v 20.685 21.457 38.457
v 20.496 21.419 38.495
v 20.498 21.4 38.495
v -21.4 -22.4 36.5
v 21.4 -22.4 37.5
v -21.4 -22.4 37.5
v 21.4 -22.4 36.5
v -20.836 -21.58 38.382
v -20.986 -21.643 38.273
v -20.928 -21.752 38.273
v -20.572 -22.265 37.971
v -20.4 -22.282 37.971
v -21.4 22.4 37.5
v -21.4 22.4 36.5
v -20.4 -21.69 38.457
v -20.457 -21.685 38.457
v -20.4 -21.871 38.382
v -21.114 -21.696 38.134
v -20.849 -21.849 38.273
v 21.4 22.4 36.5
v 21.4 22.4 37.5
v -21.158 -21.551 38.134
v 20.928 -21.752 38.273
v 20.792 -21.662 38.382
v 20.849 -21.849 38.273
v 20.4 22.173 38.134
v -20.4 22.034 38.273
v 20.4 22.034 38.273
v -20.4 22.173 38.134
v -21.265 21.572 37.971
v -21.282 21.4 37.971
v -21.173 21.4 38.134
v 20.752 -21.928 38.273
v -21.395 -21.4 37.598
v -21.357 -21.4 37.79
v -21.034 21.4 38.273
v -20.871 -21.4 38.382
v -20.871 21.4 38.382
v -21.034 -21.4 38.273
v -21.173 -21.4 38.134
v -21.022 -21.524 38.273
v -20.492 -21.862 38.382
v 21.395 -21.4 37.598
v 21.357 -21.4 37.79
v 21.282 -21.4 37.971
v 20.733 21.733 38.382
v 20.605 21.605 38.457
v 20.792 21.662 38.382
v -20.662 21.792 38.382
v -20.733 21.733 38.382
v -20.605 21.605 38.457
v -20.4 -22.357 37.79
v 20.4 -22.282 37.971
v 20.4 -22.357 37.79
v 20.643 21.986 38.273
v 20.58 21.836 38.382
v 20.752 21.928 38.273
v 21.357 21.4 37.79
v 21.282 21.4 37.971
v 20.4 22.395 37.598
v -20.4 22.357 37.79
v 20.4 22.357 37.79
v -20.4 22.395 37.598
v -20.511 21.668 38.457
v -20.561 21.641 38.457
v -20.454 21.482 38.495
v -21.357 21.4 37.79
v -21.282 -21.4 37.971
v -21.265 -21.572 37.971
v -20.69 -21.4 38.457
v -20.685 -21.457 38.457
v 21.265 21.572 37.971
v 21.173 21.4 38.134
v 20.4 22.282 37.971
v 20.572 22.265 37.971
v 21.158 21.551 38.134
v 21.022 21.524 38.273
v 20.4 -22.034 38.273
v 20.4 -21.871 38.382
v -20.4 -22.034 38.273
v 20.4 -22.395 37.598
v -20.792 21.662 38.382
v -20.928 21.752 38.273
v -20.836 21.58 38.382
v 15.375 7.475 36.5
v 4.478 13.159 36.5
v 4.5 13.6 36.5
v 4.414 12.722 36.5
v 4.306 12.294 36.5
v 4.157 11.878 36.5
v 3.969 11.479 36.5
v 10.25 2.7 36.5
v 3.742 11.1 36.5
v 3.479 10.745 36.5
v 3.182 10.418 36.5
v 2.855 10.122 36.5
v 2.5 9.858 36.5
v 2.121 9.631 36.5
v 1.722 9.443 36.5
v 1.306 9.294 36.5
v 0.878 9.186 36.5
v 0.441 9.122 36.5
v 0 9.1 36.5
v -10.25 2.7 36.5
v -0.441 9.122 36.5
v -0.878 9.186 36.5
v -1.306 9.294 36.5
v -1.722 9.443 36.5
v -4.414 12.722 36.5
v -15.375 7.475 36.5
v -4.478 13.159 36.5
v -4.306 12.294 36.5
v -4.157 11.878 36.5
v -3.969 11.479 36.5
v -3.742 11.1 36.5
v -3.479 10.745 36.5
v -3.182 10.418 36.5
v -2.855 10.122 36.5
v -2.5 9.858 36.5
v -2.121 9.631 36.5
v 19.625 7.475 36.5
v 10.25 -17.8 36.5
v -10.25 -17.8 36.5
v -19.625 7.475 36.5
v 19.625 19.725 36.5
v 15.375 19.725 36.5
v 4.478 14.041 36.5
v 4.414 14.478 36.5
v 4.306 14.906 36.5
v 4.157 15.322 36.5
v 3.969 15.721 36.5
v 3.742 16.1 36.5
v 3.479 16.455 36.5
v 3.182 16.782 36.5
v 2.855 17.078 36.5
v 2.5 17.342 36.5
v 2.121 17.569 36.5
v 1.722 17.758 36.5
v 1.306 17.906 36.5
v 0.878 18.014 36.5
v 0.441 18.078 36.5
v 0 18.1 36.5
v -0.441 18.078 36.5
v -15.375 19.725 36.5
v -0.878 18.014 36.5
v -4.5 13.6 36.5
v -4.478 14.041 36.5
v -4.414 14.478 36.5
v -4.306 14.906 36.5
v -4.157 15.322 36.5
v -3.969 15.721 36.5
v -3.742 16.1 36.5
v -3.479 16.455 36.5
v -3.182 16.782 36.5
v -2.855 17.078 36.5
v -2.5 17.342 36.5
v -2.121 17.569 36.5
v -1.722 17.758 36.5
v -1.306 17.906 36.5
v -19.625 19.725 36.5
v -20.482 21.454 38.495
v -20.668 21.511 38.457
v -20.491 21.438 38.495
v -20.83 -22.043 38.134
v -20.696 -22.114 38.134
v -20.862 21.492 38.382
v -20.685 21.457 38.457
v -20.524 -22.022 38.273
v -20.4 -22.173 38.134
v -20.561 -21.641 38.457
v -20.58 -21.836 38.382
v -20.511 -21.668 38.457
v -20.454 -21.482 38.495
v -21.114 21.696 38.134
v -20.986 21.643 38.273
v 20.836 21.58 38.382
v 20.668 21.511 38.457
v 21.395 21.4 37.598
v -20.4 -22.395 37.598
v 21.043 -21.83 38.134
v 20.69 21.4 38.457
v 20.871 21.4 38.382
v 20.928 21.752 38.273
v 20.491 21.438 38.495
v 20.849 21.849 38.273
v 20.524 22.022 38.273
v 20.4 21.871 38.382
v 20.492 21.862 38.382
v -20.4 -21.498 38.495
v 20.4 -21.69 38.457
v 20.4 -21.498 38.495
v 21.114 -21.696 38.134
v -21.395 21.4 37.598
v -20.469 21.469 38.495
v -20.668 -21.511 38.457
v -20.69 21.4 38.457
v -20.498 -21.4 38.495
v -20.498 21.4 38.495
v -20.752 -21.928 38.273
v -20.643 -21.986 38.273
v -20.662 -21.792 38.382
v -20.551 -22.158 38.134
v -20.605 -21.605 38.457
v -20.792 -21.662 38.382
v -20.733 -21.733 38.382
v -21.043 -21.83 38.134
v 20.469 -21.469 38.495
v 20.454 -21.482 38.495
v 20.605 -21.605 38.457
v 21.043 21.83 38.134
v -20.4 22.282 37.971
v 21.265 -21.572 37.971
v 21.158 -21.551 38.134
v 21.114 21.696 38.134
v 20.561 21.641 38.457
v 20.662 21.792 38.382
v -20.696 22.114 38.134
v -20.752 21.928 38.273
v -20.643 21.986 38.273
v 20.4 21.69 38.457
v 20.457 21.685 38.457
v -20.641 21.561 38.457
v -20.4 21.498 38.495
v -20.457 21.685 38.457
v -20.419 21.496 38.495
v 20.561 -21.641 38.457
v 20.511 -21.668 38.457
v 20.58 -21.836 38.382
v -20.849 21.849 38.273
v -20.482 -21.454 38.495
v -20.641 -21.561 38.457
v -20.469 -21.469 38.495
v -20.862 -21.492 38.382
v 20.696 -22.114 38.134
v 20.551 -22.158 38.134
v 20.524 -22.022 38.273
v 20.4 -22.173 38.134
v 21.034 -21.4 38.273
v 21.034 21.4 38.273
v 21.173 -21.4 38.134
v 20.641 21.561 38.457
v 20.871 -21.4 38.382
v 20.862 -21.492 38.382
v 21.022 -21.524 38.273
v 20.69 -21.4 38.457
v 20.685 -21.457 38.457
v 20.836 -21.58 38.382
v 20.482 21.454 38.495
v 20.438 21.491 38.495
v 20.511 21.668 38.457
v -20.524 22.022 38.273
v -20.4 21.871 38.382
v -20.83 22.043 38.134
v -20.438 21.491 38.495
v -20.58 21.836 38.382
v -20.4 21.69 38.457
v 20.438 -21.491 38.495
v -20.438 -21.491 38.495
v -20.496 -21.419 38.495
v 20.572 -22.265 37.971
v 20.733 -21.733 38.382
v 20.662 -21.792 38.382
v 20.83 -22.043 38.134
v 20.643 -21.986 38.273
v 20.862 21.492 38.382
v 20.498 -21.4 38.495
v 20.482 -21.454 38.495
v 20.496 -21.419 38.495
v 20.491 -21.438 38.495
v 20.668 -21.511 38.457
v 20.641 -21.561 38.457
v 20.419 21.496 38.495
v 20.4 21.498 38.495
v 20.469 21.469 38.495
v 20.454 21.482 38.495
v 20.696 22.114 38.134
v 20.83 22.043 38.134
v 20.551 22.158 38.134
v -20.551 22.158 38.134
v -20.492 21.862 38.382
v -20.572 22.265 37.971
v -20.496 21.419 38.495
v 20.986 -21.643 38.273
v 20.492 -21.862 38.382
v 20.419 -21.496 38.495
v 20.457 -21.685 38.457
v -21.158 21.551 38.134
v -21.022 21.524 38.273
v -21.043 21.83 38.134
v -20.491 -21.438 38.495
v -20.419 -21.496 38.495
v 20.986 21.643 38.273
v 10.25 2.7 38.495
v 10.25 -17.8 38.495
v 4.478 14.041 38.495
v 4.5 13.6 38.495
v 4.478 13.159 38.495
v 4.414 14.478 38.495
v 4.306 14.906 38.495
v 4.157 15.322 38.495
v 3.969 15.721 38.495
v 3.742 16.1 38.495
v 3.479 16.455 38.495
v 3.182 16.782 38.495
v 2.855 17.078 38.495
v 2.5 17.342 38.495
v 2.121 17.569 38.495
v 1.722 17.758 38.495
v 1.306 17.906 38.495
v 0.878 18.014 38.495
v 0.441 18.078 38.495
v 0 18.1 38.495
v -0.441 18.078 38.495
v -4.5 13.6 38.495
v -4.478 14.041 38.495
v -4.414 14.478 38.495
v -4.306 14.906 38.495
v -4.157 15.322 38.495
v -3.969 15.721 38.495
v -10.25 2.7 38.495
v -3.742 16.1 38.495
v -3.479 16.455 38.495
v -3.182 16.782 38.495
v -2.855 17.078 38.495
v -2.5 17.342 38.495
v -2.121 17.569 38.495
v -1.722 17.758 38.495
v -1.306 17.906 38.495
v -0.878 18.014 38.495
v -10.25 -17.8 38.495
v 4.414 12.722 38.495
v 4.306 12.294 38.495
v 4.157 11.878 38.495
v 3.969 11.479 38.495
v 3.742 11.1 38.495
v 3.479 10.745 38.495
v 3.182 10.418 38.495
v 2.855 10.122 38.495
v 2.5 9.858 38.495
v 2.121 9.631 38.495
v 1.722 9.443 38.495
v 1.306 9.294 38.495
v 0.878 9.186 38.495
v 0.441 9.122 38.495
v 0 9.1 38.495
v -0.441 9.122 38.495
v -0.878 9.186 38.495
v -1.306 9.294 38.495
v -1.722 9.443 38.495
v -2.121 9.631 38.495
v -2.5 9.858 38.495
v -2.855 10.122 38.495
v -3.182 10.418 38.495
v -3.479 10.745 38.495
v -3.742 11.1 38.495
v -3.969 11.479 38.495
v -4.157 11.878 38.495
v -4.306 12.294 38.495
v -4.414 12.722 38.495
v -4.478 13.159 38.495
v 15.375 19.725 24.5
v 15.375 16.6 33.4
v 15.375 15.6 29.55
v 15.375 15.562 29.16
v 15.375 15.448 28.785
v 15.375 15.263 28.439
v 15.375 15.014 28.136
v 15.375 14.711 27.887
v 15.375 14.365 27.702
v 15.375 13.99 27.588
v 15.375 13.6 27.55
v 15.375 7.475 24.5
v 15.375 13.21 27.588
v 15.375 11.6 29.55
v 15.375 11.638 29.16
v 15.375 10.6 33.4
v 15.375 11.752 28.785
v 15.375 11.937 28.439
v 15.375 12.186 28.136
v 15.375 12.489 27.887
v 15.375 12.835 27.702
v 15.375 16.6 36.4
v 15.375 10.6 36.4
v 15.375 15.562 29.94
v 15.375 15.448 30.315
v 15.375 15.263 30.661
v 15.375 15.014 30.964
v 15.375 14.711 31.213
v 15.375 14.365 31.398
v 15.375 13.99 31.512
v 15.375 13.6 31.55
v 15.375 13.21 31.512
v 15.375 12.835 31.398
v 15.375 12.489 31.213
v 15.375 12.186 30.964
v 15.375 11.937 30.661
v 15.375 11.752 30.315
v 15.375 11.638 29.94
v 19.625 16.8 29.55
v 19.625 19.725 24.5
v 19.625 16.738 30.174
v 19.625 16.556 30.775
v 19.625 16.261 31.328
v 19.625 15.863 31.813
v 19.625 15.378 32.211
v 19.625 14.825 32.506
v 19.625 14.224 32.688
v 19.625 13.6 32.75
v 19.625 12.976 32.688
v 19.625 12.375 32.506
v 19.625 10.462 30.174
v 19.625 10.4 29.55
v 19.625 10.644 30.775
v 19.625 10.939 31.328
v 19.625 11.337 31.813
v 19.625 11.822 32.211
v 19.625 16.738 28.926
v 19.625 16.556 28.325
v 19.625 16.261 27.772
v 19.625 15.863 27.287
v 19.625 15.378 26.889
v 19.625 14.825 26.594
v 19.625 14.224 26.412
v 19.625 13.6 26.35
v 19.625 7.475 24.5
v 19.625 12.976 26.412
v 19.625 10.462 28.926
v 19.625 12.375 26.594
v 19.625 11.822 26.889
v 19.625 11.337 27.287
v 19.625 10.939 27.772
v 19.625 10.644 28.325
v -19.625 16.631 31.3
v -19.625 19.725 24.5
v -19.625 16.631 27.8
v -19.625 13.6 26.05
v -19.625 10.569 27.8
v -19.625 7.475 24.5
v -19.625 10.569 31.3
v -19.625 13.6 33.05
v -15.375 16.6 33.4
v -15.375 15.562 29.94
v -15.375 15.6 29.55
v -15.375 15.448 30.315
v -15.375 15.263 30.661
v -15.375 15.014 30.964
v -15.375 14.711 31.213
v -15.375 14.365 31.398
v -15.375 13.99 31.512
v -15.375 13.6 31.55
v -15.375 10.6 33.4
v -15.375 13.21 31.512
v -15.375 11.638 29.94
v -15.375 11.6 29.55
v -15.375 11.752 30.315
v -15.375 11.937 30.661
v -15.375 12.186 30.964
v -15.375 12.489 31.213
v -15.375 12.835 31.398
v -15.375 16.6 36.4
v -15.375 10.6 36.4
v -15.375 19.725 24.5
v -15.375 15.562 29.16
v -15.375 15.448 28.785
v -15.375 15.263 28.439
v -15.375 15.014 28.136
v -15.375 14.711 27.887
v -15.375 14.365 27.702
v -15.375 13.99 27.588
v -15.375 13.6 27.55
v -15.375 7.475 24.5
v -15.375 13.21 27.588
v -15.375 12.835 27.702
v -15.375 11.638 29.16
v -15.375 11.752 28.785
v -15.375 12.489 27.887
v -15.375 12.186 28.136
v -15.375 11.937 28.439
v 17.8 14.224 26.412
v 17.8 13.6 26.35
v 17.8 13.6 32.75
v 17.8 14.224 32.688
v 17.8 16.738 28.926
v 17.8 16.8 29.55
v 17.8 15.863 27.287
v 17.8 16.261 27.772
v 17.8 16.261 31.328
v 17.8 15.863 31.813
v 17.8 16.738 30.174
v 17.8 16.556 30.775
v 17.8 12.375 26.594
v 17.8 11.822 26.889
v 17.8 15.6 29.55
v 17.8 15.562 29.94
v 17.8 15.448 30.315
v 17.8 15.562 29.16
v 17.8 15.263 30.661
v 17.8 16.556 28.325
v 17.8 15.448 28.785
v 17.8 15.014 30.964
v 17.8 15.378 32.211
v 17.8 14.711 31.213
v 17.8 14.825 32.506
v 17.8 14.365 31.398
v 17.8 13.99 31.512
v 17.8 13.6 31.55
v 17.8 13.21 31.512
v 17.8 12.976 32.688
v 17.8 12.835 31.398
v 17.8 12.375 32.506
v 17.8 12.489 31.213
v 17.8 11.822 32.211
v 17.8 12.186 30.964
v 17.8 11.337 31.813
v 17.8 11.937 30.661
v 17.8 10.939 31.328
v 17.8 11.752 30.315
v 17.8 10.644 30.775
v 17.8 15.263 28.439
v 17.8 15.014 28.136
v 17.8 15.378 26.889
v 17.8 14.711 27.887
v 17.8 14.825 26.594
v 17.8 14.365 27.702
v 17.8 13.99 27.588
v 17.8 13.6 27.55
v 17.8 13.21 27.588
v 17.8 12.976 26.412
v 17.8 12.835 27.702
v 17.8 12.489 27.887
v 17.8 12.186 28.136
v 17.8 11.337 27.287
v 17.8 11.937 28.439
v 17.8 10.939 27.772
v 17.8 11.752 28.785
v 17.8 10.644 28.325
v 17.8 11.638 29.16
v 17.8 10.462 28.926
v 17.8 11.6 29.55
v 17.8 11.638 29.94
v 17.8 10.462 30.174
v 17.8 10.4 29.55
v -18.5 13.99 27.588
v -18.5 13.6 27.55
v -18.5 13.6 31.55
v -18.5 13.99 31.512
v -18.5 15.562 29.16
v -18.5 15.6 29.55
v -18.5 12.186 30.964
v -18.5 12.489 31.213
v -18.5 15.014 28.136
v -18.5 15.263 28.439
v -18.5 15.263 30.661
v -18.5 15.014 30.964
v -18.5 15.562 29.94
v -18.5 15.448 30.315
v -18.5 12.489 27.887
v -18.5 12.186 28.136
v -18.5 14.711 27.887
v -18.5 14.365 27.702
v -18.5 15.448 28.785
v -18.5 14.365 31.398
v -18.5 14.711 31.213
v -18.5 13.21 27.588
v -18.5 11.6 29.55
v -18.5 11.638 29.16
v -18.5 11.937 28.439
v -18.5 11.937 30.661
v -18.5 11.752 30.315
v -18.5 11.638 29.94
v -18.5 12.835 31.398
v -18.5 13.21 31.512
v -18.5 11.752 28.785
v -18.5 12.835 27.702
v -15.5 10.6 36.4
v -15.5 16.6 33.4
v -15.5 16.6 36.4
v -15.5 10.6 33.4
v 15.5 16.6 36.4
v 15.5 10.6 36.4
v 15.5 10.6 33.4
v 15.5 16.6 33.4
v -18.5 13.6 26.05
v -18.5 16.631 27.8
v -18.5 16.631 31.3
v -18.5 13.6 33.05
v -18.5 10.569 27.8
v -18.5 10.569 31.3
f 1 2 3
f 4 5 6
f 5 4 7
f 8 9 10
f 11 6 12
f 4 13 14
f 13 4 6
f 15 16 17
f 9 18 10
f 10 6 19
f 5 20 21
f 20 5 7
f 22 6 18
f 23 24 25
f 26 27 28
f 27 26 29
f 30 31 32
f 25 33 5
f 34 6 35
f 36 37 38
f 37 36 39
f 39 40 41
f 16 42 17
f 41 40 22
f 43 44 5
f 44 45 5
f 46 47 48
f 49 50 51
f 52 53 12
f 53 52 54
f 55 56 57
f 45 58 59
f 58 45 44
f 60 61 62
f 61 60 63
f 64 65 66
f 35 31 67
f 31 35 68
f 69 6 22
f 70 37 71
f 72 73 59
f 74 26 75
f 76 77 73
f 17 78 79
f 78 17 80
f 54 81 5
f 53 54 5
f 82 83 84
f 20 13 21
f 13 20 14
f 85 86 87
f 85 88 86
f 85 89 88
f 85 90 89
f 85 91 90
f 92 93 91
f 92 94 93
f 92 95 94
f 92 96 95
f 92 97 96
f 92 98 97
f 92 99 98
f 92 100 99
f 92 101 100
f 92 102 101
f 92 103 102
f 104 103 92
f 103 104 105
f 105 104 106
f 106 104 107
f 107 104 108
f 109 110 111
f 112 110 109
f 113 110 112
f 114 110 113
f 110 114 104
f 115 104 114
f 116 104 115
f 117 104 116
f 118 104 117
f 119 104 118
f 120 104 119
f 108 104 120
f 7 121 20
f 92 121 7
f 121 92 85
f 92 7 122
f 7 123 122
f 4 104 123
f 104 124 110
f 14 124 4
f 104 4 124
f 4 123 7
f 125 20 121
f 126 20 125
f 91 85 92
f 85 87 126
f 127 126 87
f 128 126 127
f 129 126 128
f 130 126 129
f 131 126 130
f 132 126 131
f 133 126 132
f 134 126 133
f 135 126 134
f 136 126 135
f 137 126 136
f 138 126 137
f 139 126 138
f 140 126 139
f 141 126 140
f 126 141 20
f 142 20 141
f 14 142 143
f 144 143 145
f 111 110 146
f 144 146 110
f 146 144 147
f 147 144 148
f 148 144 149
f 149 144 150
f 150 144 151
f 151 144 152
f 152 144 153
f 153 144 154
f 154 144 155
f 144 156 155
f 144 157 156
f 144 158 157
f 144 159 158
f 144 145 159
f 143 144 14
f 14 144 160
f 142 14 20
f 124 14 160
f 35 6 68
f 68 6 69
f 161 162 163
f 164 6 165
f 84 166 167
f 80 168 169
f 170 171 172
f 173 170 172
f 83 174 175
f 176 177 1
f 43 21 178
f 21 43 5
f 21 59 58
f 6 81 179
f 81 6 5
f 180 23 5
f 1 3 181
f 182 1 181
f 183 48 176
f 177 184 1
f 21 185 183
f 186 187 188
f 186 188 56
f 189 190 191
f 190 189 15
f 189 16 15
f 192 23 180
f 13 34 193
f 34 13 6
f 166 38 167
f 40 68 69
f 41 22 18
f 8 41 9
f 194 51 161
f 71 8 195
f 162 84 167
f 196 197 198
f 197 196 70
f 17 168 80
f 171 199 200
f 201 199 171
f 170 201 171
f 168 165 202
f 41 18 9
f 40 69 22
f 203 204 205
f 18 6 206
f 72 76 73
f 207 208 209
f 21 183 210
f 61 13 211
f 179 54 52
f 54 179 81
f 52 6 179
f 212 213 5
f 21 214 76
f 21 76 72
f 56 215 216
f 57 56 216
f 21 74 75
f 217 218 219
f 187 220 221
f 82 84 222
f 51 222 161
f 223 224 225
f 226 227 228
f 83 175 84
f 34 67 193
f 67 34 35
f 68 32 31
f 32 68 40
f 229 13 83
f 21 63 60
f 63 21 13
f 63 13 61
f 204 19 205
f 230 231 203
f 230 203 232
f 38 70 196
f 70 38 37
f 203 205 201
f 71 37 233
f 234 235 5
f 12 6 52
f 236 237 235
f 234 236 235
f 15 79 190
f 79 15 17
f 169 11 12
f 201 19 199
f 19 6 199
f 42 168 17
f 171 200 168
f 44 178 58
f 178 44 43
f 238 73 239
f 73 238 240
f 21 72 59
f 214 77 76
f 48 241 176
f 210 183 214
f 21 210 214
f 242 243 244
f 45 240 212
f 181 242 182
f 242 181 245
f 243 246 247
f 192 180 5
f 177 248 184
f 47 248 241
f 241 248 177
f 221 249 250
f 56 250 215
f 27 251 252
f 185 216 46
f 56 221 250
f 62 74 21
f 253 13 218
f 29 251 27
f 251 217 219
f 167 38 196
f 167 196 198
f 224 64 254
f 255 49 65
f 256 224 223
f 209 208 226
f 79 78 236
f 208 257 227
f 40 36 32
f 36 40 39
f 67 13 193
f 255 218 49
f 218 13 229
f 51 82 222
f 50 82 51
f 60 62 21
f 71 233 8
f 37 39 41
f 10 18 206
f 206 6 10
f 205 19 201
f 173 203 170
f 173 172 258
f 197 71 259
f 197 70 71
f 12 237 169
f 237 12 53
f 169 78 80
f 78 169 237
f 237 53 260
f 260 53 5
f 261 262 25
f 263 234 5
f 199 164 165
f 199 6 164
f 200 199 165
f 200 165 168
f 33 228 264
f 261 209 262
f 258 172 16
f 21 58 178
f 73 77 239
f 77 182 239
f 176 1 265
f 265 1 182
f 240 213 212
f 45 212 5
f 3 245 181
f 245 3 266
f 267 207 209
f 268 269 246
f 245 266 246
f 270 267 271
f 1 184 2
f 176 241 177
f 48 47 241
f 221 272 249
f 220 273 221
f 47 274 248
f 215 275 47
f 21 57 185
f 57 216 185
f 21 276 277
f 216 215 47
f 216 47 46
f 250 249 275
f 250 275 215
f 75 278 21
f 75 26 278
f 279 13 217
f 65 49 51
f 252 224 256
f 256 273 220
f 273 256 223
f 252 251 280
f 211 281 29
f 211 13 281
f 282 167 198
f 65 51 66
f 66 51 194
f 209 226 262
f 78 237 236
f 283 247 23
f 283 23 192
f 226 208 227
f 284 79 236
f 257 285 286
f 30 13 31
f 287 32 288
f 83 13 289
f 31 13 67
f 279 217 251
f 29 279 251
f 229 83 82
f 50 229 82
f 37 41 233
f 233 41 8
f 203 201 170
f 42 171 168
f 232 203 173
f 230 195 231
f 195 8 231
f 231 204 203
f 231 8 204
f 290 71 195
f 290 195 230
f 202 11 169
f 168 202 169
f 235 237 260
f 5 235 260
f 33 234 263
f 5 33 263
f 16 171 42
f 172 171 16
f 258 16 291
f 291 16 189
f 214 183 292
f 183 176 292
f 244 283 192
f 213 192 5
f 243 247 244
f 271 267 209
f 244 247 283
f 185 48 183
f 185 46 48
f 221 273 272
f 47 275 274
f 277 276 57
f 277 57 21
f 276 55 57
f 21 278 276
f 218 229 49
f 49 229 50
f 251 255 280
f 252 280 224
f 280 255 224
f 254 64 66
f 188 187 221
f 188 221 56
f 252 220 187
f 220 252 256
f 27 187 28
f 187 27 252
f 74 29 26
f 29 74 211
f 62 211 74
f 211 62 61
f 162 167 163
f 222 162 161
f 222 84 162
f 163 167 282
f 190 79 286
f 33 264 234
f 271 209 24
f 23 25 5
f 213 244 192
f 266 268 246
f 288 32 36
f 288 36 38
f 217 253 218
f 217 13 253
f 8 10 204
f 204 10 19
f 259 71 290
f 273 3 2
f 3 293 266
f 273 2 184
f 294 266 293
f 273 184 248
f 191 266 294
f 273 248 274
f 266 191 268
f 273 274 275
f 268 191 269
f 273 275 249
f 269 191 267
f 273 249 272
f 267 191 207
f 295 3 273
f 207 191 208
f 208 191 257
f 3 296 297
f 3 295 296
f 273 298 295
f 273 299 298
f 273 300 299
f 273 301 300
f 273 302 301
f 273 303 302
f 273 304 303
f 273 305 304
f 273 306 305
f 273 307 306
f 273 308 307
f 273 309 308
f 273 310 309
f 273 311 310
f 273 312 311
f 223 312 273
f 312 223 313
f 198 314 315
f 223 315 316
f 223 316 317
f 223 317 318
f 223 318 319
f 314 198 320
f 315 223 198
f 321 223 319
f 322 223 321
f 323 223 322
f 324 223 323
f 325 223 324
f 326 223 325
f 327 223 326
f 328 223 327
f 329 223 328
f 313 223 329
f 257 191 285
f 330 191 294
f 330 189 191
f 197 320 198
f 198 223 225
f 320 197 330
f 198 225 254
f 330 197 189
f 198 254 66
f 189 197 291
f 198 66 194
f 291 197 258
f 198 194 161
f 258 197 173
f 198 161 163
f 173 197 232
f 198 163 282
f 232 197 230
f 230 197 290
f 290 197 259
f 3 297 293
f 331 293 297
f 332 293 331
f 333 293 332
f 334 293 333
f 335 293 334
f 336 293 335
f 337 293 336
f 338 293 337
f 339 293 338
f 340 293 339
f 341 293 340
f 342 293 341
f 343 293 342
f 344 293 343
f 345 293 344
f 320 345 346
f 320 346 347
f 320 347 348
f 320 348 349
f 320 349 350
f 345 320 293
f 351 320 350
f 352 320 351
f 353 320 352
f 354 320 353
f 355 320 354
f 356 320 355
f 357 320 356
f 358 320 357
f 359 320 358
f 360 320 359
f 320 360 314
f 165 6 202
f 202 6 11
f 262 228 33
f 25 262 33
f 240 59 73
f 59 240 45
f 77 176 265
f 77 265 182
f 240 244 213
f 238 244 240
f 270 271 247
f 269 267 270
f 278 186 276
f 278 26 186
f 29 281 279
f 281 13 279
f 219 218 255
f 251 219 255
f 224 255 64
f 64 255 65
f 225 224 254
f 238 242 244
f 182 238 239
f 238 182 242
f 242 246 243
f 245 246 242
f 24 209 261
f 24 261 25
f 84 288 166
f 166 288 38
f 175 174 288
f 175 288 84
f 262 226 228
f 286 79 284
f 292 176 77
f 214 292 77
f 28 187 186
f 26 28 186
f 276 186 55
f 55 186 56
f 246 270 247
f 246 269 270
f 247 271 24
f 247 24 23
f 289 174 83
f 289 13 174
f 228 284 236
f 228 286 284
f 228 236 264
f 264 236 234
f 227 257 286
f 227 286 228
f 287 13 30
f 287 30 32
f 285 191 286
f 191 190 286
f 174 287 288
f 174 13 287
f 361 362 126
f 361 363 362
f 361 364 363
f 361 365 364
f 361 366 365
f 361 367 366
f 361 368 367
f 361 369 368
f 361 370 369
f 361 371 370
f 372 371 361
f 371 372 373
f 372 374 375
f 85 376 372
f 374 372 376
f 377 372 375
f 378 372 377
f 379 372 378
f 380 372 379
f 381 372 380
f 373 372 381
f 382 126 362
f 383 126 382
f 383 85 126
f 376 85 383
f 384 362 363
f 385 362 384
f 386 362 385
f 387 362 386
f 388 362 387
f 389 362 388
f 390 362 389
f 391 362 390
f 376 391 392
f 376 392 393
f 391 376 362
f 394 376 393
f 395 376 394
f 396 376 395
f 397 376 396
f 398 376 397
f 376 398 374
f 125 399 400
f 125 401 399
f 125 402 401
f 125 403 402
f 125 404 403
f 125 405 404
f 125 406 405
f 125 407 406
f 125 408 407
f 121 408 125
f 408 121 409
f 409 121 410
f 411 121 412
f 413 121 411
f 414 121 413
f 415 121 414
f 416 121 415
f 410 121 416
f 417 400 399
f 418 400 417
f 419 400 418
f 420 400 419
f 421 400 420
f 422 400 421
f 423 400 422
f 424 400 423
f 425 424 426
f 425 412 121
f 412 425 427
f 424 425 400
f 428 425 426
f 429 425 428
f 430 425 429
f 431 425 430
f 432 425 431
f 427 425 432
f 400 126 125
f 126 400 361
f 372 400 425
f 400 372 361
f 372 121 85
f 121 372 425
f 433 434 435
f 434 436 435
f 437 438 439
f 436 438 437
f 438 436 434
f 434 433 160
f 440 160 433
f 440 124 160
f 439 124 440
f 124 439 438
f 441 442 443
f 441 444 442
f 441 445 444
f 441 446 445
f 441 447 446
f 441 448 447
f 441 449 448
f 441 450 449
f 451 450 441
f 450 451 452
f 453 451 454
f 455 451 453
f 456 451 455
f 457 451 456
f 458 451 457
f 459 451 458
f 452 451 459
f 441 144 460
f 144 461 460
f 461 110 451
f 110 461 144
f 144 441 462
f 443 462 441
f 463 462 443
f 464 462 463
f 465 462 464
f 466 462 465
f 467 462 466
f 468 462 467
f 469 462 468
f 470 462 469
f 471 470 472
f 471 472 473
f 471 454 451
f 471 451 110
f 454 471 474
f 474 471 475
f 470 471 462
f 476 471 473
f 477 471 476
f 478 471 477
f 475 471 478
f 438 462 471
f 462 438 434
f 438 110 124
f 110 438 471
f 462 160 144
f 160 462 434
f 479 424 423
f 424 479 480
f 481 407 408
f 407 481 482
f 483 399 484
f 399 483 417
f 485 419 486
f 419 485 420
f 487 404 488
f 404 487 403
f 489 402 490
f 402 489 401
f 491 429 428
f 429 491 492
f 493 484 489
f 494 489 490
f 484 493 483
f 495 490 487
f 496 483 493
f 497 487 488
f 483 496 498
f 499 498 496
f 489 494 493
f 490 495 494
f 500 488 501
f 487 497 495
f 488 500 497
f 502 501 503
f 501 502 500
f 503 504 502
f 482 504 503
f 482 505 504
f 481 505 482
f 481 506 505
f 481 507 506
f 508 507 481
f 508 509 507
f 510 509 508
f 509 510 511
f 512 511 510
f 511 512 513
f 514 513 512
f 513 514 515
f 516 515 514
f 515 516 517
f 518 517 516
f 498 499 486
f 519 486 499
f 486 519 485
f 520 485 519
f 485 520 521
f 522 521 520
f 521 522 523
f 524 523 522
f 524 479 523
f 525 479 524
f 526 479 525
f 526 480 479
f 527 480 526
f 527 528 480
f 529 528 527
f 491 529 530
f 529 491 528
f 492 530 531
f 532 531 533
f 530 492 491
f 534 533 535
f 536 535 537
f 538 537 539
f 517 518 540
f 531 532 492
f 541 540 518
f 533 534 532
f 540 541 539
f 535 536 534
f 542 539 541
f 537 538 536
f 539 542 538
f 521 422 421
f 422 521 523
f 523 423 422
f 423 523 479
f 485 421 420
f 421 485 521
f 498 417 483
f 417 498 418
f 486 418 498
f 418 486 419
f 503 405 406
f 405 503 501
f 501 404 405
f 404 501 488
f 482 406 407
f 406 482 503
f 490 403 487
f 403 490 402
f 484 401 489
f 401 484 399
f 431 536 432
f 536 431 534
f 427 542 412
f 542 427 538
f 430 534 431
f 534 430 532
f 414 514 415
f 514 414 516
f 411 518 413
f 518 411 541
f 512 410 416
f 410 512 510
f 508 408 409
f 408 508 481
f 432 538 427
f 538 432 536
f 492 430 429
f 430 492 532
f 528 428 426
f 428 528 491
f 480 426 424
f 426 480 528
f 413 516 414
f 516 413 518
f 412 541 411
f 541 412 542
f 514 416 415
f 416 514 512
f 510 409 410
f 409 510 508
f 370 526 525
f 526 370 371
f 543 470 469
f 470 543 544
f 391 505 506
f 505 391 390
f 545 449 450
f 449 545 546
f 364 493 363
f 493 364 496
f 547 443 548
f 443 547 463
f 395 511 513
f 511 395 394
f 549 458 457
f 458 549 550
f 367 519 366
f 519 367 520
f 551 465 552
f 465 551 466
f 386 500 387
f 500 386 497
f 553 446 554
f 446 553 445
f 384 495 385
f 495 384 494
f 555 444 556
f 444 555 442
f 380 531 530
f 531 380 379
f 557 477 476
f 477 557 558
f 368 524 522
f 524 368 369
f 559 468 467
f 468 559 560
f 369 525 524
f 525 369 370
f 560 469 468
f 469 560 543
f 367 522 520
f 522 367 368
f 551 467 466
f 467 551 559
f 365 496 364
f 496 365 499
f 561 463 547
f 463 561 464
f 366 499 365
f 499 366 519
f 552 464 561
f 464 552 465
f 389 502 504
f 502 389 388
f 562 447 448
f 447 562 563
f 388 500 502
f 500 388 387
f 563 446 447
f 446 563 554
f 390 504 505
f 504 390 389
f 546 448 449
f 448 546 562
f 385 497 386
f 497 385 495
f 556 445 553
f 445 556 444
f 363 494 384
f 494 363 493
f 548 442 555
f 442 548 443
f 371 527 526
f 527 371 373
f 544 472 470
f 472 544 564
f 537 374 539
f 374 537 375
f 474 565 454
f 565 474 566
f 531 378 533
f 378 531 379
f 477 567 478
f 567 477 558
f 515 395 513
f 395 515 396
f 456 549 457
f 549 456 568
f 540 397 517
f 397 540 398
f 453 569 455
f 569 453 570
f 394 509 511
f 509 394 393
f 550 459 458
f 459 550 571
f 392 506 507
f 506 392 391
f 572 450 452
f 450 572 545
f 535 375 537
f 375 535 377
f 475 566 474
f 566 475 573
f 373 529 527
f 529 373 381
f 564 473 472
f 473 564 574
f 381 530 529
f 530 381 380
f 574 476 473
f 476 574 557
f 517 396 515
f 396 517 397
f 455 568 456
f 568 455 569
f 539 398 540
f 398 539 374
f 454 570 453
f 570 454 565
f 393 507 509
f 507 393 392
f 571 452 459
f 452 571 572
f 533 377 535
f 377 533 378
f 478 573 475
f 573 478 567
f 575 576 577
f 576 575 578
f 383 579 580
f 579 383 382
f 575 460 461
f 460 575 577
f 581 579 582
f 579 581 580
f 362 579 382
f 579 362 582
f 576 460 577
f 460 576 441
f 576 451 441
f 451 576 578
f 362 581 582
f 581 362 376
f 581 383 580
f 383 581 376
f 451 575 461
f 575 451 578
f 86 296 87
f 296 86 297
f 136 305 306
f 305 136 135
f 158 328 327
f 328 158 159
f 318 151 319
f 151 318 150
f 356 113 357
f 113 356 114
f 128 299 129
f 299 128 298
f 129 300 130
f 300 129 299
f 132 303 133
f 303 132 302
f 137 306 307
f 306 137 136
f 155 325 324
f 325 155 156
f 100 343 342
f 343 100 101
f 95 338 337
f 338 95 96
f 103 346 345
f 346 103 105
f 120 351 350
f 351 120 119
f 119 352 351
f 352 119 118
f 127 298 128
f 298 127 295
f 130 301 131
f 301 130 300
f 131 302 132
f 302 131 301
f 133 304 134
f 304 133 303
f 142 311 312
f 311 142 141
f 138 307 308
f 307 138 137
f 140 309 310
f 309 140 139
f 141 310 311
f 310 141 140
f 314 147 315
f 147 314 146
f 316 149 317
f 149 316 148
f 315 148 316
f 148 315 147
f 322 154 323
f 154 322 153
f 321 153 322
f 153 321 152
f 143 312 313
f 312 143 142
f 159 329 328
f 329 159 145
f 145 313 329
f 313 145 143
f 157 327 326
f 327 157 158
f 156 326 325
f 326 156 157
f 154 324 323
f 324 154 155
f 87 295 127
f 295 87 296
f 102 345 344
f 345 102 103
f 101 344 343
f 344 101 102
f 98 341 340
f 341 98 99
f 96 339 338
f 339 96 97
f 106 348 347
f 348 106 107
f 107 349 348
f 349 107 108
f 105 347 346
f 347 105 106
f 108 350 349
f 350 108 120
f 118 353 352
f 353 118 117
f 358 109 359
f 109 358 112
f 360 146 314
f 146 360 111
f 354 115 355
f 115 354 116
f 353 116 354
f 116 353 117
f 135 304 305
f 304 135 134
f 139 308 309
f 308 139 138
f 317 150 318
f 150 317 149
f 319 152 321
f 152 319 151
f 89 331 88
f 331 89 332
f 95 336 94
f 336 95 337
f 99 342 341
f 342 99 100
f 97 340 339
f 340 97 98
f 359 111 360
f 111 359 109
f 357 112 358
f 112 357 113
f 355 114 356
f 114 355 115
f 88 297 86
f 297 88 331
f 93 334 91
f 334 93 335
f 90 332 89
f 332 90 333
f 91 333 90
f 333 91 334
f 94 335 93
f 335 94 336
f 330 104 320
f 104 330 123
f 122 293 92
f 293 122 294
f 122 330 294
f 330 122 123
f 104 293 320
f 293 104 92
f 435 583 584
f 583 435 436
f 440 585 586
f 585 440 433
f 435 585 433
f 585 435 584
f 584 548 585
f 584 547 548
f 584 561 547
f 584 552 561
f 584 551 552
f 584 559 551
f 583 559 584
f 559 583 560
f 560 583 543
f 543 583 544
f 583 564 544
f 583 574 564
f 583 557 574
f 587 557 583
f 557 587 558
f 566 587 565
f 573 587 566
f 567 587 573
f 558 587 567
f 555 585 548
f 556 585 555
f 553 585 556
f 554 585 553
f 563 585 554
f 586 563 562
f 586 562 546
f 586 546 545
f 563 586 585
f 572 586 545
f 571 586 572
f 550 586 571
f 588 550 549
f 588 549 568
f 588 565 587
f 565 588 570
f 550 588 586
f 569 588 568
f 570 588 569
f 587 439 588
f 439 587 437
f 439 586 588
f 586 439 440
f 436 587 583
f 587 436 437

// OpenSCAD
union() // SharpSCAD generated scene: lid
{
  { // module: lid
    color( c= "white" )
    {
      difference()
      {
        translate( v= [ 0, 0, 36.5 ] )
        {
          union()
          {
            translate( v= [ 0, 0, 1 ] )
            {
              { // module: roundedcube
                translate( v= [ -21.4, -22.4, -1 ] )
                {
                  translate( v= [ 0, 0, 0 ] )
                  {
                    hull()
                    {
                      translate( v= [ 1, 1, 1 ] )
                      {
                        sphere( r= 1, $fn= 32 );
                      }
                      translate( v= [ 1, 43.8, 1 ] )
                      {
                        sphere( r= 1, $fn= 32 );
                      }
                      translate( v= [ 1, 1, 1 ] )
                      {
                        sphere( r= 1, $fn= 32 );
                      }
                      translate( v= [ 1, 43.8, 1 ] )
                      {
                        sphere( r= 1, $fn= 32 );
                      }
                      translate( v= [ 41.8, 1, 1 ] )
                      {
                        sphere( r= 1, $fn= 32 );
                      }
                      translate( v= [ 41.8, 43.8, 1 ] )
                      {
                        sphere( r= 1, $fn= 32 );
                      }
                      translate( v= [ 41.8, 1, 1 ] )
                      {
                        sphere( r= 1, $fn= 32 );
                      }
                      translate( v= [ 41.8, 43.8, 1 ] )
                      {
                        sphere( r= 1, $fn= 32 );
                      }
                      union()
                      {
                        cube( size= [ 42.8, 44.8, 1 ] );
                      }
                    }
                  }
                }
              }
            }
            translate( v= [ 17.5, 13.6, -6 ] )
            {
              cube( size= [ 4.25, 12.25, 12 ], center= true );
            }
            translate( v= [ -17.5, 13.6, -6 ] )
            {
              cube( size= [ 4.25, 12.25, 12 ], center= true );
            }
          }
        }
        translate( v= [ -21.5, 13.6, 29.55 ] )
        {
          rotate( a= [ 0, 90, 0 ] )
          {
            union()
            {
              translate( v= [ 0, 0, 39.3 ] )
              {
                cylinder( r= 3.2, $fn= 32, h= 4 );
              }
              cylinder( r= 2, $fn= 32, h= 43.1 );
            }
          }
        }
        translate( v= [ -21.5, 13.6, 29.55 ] )
        {
          rotate( a= [ 0, 90, 0 ] )
          {
            cylinder( r= 3.5, $fn= 6, h= 3 );
          }
        }
        translate( v= [ 0, 13.6, 36.4 ] )
        {
          { // module: button
            color( c= "yellow" )
            {
              union()
              {
                translate( v= [ 0, 0, -1.5 ] )
                {
                  cube( size= [ 31, 6, 3 ], center= true );
                }
                rotate( a= [ 180, 0, 0 ] )
                {
                  cylinder( r= 7.5, $fn= 64, h= 5 );
                }
                cylinder( r= 4.5, $fn= 64, h= 5 );
              }
            }
          }
        }
        translate( v= [ 0, -8.05, 32.5 ] )
        {
          { // module: led_matrix_shield
            union()
            {
              { // module: d1_footprint
                translate( v= [ 0, 0, 1.8 ] )
                {
                  union()
                  {
                    color( c= "darkcyan" )
                    {
                      cube( size= [ 36, 28, 3.6 ], center= true );
                    }
                  }
                }
              }
              color( c= "white" )
              {
                translate( v= [ 0, 0.5, 5 ] )
                {
                  cube( size= [ 20.5, 20.5, 6 ], center= true );
                }
              }
            }
          }
        }
      }
    }
  }
}
